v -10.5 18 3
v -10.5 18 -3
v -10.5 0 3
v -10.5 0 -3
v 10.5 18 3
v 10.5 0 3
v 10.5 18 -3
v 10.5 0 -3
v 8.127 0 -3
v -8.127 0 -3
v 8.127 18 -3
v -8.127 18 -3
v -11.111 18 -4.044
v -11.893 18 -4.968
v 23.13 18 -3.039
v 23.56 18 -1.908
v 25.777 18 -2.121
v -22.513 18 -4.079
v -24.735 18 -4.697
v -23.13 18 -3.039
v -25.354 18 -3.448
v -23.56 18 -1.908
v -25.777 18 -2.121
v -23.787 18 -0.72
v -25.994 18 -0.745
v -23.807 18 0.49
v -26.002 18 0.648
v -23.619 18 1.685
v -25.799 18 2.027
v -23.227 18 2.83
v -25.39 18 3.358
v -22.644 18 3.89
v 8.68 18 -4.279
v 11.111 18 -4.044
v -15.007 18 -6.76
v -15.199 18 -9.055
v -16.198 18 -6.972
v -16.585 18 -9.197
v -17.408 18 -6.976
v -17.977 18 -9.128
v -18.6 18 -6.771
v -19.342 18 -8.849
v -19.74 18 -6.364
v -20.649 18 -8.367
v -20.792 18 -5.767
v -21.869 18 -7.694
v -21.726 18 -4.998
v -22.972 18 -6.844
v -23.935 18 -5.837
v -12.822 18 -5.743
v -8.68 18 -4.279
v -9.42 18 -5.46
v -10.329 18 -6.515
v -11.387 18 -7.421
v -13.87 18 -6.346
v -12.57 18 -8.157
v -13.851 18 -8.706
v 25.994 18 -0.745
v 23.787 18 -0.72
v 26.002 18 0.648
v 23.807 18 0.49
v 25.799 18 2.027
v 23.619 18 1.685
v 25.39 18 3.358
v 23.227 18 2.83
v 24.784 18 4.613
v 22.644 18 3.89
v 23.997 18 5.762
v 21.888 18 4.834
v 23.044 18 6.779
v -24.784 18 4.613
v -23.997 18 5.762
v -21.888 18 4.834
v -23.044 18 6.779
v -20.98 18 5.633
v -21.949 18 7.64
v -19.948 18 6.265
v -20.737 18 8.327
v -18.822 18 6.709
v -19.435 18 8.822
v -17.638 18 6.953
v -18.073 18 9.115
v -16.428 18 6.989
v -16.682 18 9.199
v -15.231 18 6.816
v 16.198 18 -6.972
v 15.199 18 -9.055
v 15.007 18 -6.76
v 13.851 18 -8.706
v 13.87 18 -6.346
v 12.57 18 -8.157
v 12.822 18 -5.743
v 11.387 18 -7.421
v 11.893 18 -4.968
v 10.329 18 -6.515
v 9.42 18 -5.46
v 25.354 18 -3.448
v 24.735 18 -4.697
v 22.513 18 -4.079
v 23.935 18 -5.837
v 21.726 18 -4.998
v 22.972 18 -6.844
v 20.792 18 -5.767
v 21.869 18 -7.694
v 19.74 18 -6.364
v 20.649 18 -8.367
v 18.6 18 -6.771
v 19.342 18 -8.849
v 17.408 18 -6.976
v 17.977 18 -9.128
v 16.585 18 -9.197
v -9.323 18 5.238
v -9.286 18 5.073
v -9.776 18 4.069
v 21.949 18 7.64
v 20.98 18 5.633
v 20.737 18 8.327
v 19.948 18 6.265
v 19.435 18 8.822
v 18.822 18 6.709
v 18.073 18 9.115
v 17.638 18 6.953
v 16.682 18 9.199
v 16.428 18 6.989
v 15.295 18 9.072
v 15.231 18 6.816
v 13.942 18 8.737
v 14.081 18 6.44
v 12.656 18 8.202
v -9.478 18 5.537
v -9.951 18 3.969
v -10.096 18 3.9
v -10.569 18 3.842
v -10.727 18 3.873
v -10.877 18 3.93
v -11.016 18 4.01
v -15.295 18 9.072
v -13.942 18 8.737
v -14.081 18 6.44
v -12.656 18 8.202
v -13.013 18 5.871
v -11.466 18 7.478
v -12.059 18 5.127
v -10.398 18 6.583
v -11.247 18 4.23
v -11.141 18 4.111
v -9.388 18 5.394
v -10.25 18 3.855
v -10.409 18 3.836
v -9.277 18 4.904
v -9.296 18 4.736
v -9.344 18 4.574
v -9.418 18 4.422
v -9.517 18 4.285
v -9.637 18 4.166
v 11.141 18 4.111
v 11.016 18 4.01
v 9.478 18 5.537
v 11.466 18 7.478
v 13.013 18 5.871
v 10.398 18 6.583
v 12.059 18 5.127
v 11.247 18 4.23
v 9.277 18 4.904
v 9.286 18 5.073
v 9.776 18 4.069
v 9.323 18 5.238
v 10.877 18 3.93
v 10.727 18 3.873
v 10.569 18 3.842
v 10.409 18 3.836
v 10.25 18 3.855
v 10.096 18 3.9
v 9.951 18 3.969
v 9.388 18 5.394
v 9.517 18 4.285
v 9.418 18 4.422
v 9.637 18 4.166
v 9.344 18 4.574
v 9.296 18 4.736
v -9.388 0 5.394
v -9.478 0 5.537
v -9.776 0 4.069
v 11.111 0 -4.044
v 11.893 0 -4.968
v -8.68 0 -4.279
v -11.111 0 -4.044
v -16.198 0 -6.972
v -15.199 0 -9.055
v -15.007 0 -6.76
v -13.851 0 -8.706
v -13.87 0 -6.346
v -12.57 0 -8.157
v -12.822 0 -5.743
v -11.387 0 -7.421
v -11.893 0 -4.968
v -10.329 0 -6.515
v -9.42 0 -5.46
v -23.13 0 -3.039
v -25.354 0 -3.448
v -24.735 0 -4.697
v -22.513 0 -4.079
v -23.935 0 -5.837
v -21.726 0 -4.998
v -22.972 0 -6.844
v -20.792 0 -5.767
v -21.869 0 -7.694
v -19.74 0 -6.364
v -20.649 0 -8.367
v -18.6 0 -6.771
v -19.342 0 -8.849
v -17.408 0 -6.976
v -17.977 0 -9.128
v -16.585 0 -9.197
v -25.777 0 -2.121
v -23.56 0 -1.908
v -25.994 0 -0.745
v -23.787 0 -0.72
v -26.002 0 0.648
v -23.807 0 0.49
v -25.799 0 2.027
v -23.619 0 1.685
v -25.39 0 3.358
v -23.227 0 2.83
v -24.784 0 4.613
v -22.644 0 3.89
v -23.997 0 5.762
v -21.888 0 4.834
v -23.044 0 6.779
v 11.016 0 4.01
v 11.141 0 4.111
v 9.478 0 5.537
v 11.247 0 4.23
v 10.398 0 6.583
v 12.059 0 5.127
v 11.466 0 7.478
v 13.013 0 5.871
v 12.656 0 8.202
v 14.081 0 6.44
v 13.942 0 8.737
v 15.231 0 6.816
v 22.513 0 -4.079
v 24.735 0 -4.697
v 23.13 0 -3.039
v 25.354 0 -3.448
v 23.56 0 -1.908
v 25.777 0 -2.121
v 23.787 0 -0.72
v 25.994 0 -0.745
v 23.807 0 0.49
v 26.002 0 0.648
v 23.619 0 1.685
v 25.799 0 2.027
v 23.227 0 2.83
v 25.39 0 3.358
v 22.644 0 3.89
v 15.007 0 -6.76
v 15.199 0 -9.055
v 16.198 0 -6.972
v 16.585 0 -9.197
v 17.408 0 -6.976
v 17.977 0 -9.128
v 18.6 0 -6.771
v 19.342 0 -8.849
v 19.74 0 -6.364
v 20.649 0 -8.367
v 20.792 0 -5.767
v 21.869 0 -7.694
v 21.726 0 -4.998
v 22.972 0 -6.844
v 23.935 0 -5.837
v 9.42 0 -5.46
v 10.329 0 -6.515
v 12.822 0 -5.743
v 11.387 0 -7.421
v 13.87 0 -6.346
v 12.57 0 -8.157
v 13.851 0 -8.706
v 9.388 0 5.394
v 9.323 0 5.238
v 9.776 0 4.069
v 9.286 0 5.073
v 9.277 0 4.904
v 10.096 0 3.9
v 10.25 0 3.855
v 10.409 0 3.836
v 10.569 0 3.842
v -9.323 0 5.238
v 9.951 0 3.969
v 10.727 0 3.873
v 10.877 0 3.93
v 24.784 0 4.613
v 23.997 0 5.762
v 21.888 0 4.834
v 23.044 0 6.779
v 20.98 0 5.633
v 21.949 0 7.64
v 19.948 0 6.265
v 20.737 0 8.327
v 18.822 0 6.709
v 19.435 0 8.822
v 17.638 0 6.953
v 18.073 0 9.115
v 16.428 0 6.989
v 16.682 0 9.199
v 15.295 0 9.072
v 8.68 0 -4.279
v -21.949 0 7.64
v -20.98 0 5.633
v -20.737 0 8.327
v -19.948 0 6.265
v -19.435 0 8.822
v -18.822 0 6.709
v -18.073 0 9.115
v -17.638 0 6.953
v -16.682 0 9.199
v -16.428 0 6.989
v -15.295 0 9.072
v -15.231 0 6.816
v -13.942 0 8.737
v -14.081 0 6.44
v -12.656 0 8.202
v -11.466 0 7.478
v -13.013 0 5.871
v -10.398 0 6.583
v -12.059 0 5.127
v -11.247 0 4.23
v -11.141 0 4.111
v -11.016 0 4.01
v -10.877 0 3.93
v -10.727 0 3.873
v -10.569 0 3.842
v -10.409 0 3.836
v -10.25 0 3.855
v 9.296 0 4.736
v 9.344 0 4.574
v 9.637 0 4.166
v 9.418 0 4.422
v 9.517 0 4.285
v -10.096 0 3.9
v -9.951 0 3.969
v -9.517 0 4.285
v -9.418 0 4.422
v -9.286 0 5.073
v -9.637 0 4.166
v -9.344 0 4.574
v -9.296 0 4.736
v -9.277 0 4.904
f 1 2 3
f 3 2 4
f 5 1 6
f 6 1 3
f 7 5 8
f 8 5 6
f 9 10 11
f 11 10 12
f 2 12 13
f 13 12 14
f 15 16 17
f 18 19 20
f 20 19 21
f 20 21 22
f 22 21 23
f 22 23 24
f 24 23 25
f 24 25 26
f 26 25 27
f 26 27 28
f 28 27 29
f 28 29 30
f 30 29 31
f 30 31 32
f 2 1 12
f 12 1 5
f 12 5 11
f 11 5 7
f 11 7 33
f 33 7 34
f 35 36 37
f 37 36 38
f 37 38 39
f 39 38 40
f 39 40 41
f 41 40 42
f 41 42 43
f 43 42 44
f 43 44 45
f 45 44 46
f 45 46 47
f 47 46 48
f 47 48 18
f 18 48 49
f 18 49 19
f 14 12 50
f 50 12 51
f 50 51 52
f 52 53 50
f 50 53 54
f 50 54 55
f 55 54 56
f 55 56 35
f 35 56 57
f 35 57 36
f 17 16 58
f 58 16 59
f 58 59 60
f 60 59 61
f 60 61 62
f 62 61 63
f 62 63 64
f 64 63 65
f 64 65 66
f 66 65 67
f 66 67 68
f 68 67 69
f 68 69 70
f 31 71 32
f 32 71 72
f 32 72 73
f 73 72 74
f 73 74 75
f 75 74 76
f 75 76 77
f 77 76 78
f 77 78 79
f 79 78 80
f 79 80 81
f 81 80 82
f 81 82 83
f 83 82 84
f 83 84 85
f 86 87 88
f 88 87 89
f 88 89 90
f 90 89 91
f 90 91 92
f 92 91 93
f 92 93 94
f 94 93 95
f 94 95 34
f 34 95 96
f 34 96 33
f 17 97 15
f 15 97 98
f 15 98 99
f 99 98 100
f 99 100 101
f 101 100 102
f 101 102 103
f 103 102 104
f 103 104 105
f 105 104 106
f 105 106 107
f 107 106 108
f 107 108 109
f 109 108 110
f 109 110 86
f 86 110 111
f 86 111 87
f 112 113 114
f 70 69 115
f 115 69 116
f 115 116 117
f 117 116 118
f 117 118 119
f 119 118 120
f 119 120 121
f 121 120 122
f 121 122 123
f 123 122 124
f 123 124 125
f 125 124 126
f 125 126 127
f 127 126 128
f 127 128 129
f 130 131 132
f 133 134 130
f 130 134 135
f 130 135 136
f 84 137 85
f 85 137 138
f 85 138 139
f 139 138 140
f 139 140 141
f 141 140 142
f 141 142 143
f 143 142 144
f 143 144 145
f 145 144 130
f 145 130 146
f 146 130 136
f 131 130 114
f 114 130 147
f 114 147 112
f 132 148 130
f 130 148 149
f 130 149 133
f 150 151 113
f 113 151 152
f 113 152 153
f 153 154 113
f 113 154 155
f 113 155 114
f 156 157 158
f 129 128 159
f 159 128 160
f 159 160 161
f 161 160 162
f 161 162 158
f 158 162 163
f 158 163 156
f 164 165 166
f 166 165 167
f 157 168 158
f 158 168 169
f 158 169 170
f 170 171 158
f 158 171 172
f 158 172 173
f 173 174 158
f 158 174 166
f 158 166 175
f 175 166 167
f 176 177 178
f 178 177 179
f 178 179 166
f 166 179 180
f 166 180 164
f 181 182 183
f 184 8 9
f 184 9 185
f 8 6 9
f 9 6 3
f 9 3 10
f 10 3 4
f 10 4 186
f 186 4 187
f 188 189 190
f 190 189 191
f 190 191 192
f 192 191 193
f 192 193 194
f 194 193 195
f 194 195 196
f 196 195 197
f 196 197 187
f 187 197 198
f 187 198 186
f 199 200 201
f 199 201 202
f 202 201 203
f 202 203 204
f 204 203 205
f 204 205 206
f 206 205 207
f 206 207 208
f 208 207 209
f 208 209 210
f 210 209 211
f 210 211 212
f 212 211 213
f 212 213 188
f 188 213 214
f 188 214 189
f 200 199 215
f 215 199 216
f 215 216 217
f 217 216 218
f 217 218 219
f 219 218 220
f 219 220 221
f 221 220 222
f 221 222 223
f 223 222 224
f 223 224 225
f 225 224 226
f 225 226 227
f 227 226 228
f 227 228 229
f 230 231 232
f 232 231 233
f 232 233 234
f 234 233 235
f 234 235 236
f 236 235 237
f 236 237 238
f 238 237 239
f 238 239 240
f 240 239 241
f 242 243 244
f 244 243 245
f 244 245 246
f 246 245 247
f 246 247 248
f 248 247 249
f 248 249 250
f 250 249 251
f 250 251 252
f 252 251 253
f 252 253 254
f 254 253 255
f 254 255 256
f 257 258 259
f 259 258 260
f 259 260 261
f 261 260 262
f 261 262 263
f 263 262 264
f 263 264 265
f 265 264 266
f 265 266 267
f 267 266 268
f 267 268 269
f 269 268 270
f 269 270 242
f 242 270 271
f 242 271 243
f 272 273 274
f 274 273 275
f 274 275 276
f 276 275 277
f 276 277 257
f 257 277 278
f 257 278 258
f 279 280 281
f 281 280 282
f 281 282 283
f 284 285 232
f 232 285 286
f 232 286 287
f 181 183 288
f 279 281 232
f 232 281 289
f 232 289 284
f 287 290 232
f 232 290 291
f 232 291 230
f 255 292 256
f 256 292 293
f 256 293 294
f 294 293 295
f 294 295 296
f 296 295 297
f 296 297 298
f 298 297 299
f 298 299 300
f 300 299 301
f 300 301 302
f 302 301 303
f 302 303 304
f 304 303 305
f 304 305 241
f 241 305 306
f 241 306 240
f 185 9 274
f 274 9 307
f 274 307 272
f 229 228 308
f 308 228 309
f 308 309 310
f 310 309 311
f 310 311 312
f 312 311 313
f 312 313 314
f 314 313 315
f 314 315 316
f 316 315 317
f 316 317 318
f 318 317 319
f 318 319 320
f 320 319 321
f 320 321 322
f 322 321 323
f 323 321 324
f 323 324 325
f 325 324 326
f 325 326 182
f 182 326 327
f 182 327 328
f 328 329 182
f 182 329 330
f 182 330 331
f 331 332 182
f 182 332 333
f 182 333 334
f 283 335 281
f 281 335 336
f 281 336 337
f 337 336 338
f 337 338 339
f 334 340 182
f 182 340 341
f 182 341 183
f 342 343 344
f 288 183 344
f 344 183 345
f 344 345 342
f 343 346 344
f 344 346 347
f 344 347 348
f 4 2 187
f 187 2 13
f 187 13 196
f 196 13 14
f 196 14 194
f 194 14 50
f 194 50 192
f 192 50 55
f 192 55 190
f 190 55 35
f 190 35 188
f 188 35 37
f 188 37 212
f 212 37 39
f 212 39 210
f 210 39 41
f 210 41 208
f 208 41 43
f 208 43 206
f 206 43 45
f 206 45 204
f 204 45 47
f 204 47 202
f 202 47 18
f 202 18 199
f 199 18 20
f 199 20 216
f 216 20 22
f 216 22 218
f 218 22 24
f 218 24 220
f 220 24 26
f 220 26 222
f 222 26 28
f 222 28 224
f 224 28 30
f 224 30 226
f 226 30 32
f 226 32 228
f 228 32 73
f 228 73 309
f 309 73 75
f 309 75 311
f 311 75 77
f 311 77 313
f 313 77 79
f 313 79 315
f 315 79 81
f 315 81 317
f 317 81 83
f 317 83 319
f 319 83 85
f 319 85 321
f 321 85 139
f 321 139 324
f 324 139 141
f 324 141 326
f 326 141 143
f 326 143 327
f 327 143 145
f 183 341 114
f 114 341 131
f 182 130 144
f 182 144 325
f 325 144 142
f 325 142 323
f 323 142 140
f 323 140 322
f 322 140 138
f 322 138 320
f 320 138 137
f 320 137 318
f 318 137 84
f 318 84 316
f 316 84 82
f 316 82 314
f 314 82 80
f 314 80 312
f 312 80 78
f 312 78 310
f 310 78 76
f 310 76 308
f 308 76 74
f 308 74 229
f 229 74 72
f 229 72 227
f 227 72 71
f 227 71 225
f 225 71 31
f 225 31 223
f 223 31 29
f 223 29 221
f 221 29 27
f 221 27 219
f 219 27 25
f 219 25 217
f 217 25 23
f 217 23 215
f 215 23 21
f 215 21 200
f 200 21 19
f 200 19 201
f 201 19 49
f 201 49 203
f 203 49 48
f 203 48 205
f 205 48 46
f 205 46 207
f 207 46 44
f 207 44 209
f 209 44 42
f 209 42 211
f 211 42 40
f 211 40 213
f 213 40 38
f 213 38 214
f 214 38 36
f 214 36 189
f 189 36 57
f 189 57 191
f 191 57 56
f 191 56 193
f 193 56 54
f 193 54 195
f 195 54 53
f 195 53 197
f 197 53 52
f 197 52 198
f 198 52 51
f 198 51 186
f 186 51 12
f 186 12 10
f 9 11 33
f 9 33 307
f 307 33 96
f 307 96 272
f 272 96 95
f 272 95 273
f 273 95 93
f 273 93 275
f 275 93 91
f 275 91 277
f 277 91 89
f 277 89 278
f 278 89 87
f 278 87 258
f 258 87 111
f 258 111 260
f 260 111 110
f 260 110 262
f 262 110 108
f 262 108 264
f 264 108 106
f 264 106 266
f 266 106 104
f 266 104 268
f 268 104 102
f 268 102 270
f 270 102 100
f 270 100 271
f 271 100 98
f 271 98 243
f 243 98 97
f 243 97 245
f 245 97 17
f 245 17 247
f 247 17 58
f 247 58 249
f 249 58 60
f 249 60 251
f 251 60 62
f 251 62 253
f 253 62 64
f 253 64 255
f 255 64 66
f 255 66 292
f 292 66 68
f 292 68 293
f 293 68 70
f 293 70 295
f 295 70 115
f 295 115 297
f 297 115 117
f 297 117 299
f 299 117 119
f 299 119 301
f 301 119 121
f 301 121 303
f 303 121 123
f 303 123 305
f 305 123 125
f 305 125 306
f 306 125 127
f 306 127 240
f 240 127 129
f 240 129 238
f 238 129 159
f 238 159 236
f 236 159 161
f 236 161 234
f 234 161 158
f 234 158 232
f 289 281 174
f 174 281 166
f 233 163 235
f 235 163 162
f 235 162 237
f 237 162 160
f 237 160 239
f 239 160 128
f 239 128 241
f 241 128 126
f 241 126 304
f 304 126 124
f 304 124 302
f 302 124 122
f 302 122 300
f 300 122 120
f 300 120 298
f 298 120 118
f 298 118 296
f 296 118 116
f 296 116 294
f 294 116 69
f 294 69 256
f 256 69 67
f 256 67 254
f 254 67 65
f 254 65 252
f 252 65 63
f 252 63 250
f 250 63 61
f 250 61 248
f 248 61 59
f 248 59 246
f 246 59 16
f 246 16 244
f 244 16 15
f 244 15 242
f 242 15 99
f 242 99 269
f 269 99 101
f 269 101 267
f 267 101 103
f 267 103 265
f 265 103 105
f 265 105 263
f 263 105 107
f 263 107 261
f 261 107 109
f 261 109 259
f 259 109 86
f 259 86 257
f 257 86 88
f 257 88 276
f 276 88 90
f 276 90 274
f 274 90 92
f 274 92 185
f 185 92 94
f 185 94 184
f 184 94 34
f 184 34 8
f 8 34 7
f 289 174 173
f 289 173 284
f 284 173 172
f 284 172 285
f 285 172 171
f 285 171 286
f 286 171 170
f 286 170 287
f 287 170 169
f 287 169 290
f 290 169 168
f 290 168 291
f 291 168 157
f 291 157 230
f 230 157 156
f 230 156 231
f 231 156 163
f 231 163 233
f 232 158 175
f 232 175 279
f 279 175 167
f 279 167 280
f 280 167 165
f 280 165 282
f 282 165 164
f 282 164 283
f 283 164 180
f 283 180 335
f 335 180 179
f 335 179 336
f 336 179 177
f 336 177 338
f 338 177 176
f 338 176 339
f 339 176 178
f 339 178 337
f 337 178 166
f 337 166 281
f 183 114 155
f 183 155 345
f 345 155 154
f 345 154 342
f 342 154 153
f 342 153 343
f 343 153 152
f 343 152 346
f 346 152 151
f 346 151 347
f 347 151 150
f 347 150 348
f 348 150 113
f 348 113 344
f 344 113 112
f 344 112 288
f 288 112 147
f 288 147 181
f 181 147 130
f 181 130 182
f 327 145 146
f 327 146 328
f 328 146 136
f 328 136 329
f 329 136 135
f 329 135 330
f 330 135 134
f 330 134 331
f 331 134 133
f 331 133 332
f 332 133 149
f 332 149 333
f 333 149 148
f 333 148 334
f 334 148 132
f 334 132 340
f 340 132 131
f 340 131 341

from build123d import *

# Parameters (mm, degrees)
SKETCH1_W           = 21
SKETCH1_H           = 6
BOSS_EXTRUDE1_DEPTH = 18
BOSS_EXTRUDE2_DEPTH = 18
FILLET1_R           = 1


with BuildPart() as part:
    # Sketch1 → Boss-Extrude1 (new body)
    with BuildSketch(Plane(origin=(0, 0, 0), x_dir=(1, 0, 0), z_dir=(0, 1, 0))):
        Rectangle(SKETCH1_W, SKETCH1_H)
    extrude(amount=BOSS_EXTRUDE1_DEPTH)

    # Sketch2 → Boss-Extrude2 (add)
    with BuildSketch(Plane(origin=(0, 18, 0), x_dir=(1, 0, 0), z_dir=(0, 1, 0))):
        with BuildLine():
            Line((-10.5, 3), (-8.127429358, 3))
            ThreePointArc((-8.127429358, 3), (-25.982441938, 0.879268272), (-8.857121606, -4.6))
            Line((-8.857121606, -4.6), (-10.762377494, -3.5))
            ThreePointArc((-10.762377494, -3.5), (-23.818859397, 0.282330458), (-10.5, 3))
        make_face()
        with BuildLine():
            Line((10.762377494, -3.5), (8.857121606, -4.6))
            ThreePointArc((8.857121606, -4.6), (25.982441938, 0.879268272), (8.127429358, 3))
            Line((8.127429358, 3), (10.5, 3))
            ThreePointArc((10.5, 3), (23.818859397, 0.282330458), (10.762377494, -3.5))
        make_face()
    extrude(amount=-BOSS_EXTRUDE2_DEPTH)

    # Fillet1
    fillet1_edges = [part.edges().sort_by_distance(p)[0] for p in [
        (-10.762377494, 9, 3.5),
        (-8.857121606, 9, 4.6),
        (8.857121606, 9, 4.6),
        (10.762377494, 9, 3.5),
    ]]
    fillet(fillet1_edges, radius=FILLET1_R)


solid = part.part
